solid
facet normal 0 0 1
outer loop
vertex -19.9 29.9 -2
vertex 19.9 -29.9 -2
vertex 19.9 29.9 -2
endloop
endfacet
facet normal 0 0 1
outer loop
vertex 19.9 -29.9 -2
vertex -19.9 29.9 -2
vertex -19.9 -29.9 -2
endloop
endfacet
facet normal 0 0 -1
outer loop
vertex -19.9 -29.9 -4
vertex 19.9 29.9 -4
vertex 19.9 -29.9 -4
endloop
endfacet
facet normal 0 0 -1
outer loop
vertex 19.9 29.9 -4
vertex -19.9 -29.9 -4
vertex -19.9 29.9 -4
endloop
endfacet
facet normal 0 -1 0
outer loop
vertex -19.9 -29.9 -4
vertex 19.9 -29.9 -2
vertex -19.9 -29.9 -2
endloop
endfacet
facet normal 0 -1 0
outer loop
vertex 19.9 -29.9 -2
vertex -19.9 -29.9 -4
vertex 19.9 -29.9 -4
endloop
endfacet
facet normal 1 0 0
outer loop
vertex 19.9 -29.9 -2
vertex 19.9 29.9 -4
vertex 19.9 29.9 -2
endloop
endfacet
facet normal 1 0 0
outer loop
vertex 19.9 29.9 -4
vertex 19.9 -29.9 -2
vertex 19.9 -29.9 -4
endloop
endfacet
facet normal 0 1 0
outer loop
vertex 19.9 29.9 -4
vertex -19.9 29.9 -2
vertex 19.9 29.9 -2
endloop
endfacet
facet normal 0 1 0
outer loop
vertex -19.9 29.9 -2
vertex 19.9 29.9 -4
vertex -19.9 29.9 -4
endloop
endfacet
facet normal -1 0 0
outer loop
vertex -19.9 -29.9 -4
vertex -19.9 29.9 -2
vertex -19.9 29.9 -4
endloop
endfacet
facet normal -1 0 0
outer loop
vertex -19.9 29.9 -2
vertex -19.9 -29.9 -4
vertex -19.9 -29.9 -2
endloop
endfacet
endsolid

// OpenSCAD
/*
    straight one grid tile train tube track
*/
include <train_tube_track.scad>;

//straight_track_double_plug(grid, is_base = false);

base_grid(1.5*grid);
